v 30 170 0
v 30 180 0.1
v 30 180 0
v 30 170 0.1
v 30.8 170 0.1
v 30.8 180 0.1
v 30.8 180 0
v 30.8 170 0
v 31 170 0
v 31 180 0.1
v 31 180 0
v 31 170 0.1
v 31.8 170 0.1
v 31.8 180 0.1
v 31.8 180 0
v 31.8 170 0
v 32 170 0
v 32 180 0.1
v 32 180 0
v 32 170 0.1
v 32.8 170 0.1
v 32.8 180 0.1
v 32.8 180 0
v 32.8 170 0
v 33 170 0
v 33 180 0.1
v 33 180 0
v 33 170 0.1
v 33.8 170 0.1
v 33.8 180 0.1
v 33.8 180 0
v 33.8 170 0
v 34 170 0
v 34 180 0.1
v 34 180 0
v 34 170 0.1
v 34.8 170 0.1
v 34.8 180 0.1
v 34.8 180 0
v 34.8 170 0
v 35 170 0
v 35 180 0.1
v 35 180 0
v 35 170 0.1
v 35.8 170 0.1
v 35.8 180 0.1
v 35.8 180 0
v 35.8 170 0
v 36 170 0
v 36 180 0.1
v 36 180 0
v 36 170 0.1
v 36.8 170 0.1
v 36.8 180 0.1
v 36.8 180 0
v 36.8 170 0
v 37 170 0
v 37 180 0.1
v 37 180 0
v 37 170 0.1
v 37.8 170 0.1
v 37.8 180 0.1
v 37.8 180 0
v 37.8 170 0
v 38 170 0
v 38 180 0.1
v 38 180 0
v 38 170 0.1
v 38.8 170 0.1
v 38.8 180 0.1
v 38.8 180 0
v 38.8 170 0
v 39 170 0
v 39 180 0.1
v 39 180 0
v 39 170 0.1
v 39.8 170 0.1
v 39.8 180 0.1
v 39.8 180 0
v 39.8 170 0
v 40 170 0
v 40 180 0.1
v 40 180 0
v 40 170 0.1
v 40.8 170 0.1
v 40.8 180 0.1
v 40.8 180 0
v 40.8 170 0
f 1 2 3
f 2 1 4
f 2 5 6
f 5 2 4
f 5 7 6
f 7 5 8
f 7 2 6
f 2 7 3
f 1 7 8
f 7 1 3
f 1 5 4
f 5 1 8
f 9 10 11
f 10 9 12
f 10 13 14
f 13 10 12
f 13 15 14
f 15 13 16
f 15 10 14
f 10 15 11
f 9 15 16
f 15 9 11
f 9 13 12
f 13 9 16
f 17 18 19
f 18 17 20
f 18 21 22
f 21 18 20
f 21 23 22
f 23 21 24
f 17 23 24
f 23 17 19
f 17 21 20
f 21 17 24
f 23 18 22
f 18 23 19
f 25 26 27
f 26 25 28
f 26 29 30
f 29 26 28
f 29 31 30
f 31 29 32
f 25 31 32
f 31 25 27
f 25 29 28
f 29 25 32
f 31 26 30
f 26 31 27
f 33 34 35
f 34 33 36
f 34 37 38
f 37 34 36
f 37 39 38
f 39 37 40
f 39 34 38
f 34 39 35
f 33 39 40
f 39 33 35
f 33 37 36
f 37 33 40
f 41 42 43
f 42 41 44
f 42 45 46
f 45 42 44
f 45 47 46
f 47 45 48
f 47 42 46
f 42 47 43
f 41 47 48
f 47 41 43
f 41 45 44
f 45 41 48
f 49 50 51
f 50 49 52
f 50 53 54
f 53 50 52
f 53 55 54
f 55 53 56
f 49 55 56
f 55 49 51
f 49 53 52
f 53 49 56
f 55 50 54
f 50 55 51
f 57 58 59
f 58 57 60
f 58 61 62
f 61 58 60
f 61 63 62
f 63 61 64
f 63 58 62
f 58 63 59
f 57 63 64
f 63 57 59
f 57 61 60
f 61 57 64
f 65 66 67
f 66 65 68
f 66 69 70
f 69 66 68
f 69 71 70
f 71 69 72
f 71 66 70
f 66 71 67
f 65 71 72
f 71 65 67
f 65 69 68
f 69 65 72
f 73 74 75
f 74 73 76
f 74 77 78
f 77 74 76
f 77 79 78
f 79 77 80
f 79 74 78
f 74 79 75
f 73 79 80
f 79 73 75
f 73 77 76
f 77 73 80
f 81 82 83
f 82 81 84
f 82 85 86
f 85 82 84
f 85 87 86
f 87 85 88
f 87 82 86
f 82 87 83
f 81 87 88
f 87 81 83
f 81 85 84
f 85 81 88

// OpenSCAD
translate([10+20,10+160,0])
        for (i = [0 : 10]){
            translate([i,0,0])
                cube(size = [0.8,10,0.1]);
    }
